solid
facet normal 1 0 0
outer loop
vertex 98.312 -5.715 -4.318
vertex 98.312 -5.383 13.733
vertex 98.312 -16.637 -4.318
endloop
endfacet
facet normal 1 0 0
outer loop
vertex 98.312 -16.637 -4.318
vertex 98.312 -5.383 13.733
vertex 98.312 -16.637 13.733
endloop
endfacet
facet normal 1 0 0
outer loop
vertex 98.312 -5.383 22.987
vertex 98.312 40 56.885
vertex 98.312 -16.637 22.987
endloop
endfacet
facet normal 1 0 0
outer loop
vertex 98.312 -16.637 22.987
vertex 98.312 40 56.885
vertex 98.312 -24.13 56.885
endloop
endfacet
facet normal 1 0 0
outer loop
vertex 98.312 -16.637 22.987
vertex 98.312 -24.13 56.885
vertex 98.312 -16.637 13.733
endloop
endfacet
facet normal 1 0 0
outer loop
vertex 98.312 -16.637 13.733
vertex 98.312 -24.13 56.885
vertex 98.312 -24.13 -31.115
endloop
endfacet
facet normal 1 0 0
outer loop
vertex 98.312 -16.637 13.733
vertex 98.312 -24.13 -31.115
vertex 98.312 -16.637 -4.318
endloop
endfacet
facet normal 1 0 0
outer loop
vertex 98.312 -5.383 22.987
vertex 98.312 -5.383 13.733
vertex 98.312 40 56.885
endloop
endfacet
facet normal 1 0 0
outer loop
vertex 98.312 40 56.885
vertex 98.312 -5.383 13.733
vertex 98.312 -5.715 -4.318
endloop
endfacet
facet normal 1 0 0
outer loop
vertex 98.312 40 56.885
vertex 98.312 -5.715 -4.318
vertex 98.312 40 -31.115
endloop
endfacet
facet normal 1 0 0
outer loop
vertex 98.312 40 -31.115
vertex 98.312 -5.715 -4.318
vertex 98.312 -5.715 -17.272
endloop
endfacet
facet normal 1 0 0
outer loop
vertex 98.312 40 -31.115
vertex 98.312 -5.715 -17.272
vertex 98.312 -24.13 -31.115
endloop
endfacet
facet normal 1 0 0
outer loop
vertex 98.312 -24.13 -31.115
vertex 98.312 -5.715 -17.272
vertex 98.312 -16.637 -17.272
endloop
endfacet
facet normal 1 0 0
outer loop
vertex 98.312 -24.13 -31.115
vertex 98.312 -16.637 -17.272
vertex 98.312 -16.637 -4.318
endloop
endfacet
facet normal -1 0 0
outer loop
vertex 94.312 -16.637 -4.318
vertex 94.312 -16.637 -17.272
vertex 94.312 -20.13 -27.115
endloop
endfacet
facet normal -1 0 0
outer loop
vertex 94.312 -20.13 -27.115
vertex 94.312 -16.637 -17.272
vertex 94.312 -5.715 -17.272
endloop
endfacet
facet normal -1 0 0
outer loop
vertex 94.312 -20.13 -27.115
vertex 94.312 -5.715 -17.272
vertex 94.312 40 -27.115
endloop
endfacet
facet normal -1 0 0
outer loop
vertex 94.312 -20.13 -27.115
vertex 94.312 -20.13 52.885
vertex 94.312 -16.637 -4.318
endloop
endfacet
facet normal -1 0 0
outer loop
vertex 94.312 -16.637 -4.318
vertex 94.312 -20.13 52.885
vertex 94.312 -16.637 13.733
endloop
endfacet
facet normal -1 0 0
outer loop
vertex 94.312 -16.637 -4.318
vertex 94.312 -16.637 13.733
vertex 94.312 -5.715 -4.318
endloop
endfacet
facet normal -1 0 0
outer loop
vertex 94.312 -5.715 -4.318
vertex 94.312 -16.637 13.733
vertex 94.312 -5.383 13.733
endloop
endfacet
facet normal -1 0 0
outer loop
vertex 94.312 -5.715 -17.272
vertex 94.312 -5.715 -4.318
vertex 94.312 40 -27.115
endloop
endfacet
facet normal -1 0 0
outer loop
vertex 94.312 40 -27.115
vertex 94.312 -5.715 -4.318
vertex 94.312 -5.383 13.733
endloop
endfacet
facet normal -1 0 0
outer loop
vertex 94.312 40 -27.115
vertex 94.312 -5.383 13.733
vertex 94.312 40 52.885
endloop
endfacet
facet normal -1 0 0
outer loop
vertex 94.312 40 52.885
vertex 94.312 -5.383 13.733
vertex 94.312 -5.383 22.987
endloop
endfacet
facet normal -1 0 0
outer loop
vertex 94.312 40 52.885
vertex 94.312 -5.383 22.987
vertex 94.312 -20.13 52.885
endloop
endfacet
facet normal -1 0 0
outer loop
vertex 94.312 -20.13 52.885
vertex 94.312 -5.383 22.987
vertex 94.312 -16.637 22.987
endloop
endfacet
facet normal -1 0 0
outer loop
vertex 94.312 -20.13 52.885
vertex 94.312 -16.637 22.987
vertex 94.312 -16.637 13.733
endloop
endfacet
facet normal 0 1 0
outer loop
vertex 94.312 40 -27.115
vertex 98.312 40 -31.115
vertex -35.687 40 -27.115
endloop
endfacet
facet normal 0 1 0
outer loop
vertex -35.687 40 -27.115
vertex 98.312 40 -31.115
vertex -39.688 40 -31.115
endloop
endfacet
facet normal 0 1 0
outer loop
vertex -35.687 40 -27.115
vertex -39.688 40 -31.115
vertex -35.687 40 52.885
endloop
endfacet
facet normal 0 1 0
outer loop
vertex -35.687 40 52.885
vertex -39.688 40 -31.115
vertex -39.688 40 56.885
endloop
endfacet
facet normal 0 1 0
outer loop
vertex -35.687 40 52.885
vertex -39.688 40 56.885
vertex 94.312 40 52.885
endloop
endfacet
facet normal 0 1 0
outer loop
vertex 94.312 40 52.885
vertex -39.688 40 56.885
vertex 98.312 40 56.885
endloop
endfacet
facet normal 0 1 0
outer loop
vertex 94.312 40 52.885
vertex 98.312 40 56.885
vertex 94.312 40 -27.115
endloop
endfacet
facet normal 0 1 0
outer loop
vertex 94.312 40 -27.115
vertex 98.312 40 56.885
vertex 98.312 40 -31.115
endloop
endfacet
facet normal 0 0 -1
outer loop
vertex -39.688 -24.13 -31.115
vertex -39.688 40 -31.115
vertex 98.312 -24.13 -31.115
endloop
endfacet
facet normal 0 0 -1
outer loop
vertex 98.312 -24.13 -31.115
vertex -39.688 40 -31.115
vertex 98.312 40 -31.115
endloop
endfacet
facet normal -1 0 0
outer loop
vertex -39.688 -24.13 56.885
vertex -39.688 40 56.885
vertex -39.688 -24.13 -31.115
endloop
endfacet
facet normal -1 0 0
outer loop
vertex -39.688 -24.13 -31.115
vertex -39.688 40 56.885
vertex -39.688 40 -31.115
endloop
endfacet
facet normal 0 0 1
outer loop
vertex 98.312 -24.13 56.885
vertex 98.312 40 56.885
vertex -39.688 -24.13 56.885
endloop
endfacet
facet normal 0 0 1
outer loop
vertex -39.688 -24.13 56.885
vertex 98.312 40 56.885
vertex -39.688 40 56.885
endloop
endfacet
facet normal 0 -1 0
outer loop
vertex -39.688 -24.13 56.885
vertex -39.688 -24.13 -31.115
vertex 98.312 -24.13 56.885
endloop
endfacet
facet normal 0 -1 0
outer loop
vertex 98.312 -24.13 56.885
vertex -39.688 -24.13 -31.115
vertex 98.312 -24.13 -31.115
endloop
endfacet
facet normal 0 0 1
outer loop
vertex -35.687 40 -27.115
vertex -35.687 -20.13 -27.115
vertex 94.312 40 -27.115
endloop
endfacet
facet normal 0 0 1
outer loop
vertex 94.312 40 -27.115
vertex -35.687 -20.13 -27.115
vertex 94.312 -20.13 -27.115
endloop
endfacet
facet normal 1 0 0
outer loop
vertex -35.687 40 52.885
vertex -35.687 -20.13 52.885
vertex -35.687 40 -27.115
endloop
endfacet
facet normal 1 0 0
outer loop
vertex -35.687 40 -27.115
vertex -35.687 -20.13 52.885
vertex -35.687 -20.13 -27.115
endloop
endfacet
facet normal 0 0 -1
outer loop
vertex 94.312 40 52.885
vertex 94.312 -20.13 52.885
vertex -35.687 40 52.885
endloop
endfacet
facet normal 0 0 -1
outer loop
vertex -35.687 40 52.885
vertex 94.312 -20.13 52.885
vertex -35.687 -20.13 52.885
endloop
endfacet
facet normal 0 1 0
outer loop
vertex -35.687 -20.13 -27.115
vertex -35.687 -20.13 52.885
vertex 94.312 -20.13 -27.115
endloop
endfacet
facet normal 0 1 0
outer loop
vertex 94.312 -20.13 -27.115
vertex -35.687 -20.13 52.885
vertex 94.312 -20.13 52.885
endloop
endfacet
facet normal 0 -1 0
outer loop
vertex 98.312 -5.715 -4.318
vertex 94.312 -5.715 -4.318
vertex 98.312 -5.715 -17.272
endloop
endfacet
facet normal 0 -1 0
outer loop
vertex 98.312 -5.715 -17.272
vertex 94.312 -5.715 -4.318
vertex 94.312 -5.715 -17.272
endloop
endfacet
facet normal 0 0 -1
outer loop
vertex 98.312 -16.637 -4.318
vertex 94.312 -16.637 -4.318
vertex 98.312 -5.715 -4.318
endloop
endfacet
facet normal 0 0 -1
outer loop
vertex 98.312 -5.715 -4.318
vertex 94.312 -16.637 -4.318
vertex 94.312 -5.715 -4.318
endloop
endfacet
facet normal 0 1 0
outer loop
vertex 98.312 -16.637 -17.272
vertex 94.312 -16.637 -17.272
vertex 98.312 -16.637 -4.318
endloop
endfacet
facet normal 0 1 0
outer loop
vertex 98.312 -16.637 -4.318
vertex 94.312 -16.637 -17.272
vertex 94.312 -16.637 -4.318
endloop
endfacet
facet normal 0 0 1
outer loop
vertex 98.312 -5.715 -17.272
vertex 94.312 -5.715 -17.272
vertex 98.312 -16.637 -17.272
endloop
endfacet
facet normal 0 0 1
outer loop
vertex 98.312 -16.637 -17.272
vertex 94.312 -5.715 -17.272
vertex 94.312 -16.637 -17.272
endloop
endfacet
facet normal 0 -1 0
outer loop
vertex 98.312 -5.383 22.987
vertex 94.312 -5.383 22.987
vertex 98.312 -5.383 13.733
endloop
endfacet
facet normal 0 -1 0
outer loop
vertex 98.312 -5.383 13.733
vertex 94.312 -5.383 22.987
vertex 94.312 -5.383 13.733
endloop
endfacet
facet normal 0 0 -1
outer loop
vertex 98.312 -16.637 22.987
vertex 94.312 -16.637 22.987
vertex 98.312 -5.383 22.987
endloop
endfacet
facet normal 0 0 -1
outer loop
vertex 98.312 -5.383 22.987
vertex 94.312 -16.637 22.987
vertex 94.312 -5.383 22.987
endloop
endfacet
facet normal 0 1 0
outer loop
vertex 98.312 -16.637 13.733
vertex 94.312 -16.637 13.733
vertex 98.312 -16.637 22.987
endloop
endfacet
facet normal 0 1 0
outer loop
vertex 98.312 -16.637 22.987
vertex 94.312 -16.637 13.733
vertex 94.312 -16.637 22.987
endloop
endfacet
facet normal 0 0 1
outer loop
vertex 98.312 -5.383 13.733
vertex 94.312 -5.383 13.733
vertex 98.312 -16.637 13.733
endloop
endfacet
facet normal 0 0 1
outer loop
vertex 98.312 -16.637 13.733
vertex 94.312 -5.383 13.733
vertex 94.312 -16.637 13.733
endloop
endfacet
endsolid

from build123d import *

# Parameters (mm, degrees)
BOSS_EXTRUDE1_DEPTH      = 40
BOSS_EXTRUDE1_DEPTH_BACK = 24.13
SKETCH1_W                = 138
SKETCH1_H                = 88
SHELL1_T                 = -4
SKETCH10_W               = 12.954
SKETCH10_H               = 10.922
CUT_EXTRUDE1_DEPTH       = 4
SKETCH12_W               = 9.254
SKETCH12_H               = 11.254
CUT_EXTRUDE2_DEPTH       = 4


with BuildPart() as part:
    # Sketch1 → Boss-Extrude1 (new, two sides: drawn at the far end of the back side and taken through both)
    with BuildSketch(Plane(origin=(0, 0, 0), x_dir=(1, 0, 0), z_dir=(0, 1, 0)).offset(-BOSS_EXTRUDE1_DEPTH_BACK)):
        with Locations((29.3125, -12.885)):
            Rectangle(SKETCH1_W, SKETCH1_H)
    extrude(amount=BOSS_EXTRUDE1_DEPTH + BOSS_EXTRUDE1_DEPTH_BACK)

    # Shell1
    shell1_openings = [part.faces().sort_by_distance(p)[0] for p in [
        (29.3125, 40, 12.885),
    ]]
    offset(amount=SHELL1_T, openings=shell1_openings, kind=Kind.INTERSECTION)

    # Sketch10 → Cut-Extrude1 (cut)
    with BuildSketch(Plane.ZY.offset(-98.3125)):
        with Locations((-10.795, -11.176)):
            Rectangle(SKETCH10_W, SKETCH10_H)
    extrude(amount=CUT_EXTRUDE1_DEPTH, mode=Mode.SUBTRACT)

    # Sketch12 → Cut-Extrude2 (cut)
    with BuildSketch(Plane.ZY.offset(-98.3125)):
        with Locations((18.36, -11.01)):
            Rectangle(SKETCH12_W, SKETCH12_H)
    extrude(amount=CUT_EXTRUDE2_DEPTH, mode=Mode.SUBTRACT)


solid = part.part
